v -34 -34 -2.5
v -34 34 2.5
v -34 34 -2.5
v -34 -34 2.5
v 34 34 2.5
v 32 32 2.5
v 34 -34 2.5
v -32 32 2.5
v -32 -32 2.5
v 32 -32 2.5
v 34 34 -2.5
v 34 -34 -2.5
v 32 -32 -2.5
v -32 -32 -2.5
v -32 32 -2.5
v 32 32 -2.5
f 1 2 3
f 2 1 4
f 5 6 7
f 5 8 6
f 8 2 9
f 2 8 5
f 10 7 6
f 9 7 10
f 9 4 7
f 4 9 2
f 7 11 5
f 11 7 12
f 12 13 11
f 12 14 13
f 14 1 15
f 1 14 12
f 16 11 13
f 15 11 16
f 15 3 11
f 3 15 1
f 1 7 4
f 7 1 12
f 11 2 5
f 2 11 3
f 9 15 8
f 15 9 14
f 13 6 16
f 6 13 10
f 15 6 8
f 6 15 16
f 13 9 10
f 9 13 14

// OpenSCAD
$fa = 4.0;
$fs = 0.2;

sidelen = 64;

wall_thickness = 2;
height = 5;

difference() {
    cube([sidelen+2*wall_thickness, sidelen+2*wall_thickness, height], center = true);
    cube([sidelen, sidelen, height], center = true);
}
